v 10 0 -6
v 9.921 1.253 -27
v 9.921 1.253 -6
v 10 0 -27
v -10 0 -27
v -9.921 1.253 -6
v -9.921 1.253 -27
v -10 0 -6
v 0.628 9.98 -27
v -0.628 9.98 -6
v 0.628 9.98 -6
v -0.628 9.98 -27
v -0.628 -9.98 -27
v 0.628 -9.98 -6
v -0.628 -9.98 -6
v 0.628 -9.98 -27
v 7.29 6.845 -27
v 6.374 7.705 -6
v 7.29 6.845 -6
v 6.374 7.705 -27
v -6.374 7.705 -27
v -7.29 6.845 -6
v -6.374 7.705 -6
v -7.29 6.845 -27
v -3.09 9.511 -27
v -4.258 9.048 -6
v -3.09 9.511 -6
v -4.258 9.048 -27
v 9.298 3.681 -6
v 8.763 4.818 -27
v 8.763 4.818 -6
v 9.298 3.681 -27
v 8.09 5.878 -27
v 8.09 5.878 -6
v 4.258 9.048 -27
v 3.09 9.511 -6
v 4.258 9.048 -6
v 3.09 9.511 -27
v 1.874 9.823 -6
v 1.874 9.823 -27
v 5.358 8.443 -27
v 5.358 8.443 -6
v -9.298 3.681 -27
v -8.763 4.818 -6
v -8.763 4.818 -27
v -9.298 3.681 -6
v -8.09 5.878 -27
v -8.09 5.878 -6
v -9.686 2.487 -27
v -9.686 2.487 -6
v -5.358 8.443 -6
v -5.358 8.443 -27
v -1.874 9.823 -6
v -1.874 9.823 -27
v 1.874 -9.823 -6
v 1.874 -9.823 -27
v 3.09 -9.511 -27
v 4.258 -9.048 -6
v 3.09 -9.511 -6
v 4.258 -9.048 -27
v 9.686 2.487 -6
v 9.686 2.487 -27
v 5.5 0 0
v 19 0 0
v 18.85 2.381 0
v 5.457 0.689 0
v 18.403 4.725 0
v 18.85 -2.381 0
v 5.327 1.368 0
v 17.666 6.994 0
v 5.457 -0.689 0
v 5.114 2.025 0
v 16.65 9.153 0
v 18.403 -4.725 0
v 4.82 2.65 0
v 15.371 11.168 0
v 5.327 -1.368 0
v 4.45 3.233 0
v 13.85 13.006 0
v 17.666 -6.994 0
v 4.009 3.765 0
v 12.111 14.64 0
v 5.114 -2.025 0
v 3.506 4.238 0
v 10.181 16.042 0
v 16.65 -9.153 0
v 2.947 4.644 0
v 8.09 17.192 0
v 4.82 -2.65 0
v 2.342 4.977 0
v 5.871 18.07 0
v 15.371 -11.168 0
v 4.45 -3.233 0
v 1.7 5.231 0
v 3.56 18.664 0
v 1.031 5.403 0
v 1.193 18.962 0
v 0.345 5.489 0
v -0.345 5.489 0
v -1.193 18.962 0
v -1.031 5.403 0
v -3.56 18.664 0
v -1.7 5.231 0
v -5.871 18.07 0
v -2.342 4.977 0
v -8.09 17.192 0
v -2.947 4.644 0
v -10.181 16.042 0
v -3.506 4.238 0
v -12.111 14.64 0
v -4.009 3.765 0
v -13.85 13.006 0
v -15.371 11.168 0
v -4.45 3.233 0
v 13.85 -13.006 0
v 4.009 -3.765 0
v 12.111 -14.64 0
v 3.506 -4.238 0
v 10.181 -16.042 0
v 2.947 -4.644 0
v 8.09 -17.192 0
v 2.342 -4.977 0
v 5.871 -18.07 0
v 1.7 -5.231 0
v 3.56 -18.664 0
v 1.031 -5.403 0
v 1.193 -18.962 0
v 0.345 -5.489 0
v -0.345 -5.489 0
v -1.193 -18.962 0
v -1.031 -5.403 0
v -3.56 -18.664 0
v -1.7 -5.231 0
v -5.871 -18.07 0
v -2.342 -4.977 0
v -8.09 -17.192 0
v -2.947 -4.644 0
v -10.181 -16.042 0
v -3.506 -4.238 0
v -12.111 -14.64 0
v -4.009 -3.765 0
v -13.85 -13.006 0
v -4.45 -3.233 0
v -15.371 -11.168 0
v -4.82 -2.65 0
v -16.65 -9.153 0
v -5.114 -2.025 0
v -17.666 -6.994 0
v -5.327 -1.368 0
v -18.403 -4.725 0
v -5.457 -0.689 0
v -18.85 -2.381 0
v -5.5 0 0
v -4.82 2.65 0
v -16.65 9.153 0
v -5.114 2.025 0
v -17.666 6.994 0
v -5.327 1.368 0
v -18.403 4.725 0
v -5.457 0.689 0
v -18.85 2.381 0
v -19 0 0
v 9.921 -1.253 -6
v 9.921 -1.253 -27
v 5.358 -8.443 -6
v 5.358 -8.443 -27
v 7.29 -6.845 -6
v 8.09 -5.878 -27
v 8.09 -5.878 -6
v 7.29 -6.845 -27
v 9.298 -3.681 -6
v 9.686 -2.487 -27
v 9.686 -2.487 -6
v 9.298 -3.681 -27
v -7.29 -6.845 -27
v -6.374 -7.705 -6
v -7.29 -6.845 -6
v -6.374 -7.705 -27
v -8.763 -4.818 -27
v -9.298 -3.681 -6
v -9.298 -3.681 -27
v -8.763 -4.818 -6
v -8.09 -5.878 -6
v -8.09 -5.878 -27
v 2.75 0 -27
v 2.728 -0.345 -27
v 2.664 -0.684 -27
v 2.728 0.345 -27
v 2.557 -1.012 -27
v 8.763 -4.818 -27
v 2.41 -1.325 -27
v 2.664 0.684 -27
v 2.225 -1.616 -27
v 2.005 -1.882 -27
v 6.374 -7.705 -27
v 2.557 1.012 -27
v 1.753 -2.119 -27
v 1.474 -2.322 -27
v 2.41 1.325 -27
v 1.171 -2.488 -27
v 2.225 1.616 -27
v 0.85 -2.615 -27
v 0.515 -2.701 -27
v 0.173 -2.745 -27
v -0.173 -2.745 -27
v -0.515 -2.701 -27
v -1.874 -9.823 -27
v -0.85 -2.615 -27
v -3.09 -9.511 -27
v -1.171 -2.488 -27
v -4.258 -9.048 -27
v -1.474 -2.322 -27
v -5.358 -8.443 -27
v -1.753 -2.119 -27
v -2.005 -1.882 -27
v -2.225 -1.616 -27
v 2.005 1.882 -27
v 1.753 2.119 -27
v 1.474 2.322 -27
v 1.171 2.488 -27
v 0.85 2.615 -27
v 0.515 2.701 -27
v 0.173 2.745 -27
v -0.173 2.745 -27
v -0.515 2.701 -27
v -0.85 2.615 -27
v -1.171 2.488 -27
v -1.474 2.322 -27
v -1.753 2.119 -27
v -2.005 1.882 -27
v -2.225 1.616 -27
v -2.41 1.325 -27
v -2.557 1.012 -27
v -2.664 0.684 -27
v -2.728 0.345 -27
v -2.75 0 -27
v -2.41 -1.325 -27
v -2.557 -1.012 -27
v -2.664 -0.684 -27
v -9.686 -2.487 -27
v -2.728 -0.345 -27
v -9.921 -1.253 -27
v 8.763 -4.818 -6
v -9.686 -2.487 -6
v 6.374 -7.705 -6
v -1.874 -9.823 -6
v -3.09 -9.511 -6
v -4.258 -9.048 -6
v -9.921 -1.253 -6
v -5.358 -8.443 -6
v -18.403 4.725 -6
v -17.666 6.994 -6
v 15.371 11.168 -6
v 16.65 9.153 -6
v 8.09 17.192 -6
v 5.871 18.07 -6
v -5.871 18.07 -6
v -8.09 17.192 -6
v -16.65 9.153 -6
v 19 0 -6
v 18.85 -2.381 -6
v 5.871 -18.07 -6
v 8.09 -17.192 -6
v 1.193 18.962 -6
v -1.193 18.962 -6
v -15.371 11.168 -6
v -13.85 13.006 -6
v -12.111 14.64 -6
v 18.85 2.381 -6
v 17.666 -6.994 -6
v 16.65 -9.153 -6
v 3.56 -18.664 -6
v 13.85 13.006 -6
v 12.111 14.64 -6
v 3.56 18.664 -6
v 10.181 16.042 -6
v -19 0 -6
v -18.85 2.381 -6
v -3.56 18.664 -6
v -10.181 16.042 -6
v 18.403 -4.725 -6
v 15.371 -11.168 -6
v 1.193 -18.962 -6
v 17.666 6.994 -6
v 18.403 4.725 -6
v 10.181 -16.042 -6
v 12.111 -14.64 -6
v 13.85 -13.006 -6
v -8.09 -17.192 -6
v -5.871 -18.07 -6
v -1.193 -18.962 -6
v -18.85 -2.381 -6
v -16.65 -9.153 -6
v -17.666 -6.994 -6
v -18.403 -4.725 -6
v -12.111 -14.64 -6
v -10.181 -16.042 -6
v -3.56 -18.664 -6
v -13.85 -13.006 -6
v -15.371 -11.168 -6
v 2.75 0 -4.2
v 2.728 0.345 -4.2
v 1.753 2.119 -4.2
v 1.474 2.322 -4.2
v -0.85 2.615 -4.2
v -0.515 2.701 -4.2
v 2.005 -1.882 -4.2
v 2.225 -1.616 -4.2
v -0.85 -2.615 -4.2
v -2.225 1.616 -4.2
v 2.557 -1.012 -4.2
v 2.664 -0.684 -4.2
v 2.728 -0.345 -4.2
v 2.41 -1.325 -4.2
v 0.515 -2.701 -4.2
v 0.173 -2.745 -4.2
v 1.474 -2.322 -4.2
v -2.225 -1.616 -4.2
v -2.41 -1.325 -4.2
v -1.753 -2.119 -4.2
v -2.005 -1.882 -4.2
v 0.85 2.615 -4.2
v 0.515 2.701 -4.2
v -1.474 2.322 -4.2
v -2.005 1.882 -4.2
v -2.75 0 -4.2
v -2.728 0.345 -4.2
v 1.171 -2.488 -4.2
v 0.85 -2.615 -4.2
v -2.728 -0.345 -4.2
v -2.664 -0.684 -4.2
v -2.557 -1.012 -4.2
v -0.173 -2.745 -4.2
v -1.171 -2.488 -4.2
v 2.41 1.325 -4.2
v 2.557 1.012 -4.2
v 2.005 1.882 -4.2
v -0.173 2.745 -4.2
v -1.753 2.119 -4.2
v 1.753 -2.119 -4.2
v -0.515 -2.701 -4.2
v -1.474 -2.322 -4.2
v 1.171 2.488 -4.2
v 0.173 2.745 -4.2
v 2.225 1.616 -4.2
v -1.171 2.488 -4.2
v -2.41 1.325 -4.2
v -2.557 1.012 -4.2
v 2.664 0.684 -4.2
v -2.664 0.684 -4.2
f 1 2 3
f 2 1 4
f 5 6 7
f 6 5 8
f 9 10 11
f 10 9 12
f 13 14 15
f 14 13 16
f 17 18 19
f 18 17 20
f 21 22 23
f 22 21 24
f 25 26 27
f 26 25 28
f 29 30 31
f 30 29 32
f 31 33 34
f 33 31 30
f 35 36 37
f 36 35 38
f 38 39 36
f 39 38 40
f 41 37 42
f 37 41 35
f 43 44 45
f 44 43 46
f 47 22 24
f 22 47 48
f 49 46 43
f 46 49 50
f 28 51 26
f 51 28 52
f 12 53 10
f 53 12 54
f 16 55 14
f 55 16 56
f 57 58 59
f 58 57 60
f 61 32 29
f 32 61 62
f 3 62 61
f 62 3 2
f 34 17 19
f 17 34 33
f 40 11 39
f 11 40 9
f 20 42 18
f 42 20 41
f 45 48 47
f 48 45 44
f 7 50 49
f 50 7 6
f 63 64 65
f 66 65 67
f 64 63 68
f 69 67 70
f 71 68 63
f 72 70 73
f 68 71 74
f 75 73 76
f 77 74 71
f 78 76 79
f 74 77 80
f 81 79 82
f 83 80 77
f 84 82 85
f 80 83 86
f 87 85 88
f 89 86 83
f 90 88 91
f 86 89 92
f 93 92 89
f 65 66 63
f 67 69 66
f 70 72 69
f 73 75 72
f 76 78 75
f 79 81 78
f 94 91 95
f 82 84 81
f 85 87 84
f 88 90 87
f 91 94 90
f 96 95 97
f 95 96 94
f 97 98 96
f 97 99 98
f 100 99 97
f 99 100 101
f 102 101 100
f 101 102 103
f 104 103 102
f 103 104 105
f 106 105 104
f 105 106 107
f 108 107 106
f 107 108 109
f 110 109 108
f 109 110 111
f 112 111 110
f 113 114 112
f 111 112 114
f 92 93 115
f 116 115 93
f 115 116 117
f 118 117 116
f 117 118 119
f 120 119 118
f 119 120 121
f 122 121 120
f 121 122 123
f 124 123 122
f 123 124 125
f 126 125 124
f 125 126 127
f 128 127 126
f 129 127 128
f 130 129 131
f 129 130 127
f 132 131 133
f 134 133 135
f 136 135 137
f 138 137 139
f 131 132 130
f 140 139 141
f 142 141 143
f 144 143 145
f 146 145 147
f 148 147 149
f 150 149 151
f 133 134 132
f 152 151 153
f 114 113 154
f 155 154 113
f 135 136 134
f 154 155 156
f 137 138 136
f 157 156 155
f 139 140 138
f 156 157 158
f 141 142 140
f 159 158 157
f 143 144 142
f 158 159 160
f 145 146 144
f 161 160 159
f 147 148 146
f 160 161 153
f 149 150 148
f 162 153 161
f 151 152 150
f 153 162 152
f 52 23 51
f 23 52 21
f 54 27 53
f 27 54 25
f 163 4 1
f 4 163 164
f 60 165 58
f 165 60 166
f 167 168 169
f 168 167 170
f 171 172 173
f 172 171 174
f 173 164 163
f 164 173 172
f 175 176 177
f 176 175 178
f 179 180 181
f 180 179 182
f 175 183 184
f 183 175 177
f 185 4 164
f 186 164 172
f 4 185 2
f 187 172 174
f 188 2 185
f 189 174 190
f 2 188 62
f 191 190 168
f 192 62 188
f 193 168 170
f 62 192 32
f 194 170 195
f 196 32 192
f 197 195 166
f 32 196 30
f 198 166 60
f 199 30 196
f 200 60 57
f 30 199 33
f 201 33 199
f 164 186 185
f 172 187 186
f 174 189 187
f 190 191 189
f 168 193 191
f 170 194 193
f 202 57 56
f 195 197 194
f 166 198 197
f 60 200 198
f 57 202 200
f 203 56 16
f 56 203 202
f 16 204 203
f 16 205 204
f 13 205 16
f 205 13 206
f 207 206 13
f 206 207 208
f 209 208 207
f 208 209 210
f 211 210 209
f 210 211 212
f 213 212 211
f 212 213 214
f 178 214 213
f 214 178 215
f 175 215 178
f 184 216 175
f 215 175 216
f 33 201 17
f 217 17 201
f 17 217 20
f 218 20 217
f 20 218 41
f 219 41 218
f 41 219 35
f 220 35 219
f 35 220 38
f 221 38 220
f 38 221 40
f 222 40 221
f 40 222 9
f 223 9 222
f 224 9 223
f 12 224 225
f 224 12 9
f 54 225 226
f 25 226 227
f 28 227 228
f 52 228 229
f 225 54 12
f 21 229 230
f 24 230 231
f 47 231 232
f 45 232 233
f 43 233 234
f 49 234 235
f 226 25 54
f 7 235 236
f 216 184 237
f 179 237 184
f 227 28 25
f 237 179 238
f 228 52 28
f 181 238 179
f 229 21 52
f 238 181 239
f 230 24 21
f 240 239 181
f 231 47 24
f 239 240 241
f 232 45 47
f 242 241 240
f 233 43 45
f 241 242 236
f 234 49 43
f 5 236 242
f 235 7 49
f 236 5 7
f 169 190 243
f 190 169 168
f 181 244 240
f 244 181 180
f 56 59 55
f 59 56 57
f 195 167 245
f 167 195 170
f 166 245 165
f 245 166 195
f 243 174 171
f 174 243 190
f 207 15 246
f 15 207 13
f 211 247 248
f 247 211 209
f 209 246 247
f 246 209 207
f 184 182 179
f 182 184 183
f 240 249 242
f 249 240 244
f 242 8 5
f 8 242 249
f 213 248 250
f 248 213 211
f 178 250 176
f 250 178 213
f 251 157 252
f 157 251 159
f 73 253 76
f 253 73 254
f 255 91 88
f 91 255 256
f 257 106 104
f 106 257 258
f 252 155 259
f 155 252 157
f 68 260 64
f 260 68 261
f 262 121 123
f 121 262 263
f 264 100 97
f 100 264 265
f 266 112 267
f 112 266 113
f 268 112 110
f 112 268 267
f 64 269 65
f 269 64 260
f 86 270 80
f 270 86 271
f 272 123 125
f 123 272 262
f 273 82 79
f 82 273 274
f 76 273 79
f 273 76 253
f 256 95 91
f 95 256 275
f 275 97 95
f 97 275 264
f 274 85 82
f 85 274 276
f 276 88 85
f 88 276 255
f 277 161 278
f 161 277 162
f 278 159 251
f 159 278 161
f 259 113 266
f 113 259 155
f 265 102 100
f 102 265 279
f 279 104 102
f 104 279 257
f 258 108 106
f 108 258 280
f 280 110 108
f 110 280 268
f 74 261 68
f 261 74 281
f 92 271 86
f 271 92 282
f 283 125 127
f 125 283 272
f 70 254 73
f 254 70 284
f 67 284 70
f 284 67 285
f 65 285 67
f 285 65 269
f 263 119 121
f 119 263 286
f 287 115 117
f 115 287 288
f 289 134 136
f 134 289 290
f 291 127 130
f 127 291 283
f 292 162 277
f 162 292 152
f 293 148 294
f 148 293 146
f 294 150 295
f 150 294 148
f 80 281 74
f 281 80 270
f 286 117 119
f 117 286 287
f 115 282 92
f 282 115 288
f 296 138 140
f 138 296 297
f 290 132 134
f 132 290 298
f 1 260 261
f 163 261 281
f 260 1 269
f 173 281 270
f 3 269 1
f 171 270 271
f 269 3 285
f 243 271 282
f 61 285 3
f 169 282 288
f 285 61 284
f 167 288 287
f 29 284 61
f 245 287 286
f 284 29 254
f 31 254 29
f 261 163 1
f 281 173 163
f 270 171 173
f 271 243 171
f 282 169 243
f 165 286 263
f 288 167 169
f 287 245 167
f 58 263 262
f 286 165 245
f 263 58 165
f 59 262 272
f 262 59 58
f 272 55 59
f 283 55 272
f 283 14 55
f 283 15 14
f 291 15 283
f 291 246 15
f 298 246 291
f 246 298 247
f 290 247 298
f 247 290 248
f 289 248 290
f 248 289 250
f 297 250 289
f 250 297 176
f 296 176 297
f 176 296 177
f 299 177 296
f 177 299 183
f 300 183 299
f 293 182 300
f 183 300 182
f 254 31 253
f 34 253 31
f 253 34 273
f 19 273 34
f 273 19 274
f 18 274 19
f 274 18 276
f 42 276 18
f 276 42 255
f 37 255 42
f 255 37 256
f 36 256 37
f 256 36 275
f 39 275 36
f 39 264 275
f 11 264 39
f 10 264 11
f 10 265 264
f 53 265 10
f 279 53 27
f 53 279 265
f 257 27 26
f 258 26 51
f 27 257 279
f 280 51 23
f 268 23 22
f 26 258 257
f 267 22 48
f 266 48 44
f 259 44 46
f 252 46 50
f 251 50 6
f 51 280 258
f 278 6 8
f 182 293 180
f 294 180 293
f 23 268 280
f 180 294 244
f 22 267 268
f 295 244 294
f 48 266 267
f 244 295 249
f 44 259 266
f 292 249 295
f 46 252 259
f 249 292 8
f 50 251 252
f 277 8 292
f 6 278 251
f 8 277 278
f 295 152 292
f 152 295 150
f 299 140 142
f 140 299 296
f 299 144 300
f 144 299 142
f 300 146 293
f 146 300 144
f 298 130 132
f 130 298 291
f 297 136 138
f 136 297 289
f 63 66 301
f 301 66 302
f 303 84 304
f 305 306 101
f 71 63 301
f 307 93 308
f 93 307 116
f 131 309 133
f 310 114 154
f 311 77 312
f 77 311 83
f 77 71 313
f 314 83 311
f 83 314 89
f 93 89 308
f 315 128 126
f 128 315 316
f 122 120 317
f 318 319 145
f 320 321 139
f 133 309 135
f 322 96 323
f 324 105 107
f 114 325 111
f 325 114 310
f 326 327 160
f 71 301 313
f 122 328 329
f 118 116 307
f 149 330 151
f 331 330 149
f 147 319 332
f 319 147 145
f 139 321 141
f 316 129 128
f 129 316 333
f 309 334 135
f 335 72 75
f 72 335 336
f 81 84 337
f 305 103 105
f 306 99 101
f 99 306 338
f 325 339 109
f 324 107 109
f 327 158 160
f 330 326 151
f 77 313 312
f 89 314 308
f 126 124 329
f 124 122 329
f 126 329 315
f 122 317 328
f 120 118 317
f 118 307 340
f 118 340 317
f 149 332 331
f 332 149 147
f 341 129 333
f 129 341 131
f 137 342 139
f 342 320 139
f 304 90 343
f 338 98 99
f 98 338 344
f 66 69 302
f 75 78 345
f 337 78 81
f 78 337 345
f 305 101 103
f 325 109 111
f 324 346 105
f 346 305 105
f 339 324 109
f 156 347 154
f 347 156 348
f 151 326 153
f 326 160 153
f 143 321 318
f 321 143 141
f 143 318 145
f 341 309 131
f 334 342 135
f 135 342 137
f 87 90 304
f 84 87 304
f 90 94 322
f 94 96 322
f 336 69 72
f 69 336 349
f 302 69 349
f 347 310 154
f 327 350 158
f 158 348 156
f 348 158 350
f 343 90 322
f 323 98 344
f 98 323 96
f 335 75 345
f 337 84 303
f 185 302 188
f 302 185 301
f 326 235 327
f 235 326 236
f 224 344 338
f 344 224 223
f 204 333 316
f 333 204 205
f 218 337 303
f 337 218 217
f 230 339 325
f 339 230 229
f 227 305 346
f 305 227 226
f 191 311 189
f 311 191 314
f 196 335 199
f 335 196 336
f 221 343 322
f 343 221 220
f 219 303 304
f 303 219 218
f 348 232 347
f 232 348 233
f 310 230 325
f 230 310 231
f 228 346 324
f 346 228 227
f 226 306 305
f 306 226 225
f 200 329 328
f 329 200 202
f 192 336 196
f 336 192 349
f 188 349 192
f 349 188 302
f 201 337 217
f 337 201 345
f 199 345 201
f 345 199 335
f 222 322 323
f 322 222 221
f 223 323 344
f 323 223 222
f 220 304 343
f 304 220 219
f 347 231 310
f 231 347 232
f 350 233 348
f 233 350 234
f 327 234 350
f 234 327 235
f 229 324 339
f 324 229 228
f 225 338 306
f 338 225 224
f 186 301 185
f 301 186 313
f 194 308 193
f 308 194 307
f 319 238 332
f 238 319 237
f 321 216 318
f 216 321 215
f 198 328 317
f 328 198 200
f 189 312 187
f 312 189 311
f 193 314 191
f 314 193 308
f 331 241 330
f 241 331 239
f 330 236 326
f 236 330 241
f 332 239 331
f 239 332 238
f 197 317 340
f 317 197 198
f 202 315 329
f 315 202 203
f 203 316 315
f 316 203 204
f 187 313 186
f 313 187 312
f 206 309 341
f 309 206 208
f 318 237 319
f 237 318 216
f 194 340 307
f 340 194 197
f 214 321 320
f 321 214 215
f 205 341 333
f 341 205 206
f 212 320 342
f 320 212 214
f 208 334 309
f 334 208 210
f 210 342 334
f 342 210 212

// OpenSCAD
$fn = 50;


difference() {
	union() {
		translate(v = [0, 0, -27.0000000000]) {
			cylinder(h = 27, r = 10.0000000000);
		}
		translate(v = [0, 0, -6.0000000000]) {
			cylinder(h = 6, r = 19.0000000000);
		}
	}
	union() {
		translate(v = [0, 0, 0]) {
			rotate(a = [0, 0, 0]) {
				difference() {
					union() {
						#translate(v = [0, 0, -27.0000000000]) {
							cylinder(h = 27, r = 2.2500000000);
						}
						#translate(v = [0, 0, -4.2000000000]) {
							cylinder(h = 4.2000000000, r1 = 2.7500000000, r2 = 5.5000000000);
						}
						#translate(v = [0, 0, -27.0000000000]) {
							cylinder(h = 27, r = 2.7500000000);
						}
						#translate(v = [0, 0, -27.0000000000]) {
							cylinder(h = 27, r = 2.2500000000);
						}
					}
					union();
				}
			}
		}
	}
}
